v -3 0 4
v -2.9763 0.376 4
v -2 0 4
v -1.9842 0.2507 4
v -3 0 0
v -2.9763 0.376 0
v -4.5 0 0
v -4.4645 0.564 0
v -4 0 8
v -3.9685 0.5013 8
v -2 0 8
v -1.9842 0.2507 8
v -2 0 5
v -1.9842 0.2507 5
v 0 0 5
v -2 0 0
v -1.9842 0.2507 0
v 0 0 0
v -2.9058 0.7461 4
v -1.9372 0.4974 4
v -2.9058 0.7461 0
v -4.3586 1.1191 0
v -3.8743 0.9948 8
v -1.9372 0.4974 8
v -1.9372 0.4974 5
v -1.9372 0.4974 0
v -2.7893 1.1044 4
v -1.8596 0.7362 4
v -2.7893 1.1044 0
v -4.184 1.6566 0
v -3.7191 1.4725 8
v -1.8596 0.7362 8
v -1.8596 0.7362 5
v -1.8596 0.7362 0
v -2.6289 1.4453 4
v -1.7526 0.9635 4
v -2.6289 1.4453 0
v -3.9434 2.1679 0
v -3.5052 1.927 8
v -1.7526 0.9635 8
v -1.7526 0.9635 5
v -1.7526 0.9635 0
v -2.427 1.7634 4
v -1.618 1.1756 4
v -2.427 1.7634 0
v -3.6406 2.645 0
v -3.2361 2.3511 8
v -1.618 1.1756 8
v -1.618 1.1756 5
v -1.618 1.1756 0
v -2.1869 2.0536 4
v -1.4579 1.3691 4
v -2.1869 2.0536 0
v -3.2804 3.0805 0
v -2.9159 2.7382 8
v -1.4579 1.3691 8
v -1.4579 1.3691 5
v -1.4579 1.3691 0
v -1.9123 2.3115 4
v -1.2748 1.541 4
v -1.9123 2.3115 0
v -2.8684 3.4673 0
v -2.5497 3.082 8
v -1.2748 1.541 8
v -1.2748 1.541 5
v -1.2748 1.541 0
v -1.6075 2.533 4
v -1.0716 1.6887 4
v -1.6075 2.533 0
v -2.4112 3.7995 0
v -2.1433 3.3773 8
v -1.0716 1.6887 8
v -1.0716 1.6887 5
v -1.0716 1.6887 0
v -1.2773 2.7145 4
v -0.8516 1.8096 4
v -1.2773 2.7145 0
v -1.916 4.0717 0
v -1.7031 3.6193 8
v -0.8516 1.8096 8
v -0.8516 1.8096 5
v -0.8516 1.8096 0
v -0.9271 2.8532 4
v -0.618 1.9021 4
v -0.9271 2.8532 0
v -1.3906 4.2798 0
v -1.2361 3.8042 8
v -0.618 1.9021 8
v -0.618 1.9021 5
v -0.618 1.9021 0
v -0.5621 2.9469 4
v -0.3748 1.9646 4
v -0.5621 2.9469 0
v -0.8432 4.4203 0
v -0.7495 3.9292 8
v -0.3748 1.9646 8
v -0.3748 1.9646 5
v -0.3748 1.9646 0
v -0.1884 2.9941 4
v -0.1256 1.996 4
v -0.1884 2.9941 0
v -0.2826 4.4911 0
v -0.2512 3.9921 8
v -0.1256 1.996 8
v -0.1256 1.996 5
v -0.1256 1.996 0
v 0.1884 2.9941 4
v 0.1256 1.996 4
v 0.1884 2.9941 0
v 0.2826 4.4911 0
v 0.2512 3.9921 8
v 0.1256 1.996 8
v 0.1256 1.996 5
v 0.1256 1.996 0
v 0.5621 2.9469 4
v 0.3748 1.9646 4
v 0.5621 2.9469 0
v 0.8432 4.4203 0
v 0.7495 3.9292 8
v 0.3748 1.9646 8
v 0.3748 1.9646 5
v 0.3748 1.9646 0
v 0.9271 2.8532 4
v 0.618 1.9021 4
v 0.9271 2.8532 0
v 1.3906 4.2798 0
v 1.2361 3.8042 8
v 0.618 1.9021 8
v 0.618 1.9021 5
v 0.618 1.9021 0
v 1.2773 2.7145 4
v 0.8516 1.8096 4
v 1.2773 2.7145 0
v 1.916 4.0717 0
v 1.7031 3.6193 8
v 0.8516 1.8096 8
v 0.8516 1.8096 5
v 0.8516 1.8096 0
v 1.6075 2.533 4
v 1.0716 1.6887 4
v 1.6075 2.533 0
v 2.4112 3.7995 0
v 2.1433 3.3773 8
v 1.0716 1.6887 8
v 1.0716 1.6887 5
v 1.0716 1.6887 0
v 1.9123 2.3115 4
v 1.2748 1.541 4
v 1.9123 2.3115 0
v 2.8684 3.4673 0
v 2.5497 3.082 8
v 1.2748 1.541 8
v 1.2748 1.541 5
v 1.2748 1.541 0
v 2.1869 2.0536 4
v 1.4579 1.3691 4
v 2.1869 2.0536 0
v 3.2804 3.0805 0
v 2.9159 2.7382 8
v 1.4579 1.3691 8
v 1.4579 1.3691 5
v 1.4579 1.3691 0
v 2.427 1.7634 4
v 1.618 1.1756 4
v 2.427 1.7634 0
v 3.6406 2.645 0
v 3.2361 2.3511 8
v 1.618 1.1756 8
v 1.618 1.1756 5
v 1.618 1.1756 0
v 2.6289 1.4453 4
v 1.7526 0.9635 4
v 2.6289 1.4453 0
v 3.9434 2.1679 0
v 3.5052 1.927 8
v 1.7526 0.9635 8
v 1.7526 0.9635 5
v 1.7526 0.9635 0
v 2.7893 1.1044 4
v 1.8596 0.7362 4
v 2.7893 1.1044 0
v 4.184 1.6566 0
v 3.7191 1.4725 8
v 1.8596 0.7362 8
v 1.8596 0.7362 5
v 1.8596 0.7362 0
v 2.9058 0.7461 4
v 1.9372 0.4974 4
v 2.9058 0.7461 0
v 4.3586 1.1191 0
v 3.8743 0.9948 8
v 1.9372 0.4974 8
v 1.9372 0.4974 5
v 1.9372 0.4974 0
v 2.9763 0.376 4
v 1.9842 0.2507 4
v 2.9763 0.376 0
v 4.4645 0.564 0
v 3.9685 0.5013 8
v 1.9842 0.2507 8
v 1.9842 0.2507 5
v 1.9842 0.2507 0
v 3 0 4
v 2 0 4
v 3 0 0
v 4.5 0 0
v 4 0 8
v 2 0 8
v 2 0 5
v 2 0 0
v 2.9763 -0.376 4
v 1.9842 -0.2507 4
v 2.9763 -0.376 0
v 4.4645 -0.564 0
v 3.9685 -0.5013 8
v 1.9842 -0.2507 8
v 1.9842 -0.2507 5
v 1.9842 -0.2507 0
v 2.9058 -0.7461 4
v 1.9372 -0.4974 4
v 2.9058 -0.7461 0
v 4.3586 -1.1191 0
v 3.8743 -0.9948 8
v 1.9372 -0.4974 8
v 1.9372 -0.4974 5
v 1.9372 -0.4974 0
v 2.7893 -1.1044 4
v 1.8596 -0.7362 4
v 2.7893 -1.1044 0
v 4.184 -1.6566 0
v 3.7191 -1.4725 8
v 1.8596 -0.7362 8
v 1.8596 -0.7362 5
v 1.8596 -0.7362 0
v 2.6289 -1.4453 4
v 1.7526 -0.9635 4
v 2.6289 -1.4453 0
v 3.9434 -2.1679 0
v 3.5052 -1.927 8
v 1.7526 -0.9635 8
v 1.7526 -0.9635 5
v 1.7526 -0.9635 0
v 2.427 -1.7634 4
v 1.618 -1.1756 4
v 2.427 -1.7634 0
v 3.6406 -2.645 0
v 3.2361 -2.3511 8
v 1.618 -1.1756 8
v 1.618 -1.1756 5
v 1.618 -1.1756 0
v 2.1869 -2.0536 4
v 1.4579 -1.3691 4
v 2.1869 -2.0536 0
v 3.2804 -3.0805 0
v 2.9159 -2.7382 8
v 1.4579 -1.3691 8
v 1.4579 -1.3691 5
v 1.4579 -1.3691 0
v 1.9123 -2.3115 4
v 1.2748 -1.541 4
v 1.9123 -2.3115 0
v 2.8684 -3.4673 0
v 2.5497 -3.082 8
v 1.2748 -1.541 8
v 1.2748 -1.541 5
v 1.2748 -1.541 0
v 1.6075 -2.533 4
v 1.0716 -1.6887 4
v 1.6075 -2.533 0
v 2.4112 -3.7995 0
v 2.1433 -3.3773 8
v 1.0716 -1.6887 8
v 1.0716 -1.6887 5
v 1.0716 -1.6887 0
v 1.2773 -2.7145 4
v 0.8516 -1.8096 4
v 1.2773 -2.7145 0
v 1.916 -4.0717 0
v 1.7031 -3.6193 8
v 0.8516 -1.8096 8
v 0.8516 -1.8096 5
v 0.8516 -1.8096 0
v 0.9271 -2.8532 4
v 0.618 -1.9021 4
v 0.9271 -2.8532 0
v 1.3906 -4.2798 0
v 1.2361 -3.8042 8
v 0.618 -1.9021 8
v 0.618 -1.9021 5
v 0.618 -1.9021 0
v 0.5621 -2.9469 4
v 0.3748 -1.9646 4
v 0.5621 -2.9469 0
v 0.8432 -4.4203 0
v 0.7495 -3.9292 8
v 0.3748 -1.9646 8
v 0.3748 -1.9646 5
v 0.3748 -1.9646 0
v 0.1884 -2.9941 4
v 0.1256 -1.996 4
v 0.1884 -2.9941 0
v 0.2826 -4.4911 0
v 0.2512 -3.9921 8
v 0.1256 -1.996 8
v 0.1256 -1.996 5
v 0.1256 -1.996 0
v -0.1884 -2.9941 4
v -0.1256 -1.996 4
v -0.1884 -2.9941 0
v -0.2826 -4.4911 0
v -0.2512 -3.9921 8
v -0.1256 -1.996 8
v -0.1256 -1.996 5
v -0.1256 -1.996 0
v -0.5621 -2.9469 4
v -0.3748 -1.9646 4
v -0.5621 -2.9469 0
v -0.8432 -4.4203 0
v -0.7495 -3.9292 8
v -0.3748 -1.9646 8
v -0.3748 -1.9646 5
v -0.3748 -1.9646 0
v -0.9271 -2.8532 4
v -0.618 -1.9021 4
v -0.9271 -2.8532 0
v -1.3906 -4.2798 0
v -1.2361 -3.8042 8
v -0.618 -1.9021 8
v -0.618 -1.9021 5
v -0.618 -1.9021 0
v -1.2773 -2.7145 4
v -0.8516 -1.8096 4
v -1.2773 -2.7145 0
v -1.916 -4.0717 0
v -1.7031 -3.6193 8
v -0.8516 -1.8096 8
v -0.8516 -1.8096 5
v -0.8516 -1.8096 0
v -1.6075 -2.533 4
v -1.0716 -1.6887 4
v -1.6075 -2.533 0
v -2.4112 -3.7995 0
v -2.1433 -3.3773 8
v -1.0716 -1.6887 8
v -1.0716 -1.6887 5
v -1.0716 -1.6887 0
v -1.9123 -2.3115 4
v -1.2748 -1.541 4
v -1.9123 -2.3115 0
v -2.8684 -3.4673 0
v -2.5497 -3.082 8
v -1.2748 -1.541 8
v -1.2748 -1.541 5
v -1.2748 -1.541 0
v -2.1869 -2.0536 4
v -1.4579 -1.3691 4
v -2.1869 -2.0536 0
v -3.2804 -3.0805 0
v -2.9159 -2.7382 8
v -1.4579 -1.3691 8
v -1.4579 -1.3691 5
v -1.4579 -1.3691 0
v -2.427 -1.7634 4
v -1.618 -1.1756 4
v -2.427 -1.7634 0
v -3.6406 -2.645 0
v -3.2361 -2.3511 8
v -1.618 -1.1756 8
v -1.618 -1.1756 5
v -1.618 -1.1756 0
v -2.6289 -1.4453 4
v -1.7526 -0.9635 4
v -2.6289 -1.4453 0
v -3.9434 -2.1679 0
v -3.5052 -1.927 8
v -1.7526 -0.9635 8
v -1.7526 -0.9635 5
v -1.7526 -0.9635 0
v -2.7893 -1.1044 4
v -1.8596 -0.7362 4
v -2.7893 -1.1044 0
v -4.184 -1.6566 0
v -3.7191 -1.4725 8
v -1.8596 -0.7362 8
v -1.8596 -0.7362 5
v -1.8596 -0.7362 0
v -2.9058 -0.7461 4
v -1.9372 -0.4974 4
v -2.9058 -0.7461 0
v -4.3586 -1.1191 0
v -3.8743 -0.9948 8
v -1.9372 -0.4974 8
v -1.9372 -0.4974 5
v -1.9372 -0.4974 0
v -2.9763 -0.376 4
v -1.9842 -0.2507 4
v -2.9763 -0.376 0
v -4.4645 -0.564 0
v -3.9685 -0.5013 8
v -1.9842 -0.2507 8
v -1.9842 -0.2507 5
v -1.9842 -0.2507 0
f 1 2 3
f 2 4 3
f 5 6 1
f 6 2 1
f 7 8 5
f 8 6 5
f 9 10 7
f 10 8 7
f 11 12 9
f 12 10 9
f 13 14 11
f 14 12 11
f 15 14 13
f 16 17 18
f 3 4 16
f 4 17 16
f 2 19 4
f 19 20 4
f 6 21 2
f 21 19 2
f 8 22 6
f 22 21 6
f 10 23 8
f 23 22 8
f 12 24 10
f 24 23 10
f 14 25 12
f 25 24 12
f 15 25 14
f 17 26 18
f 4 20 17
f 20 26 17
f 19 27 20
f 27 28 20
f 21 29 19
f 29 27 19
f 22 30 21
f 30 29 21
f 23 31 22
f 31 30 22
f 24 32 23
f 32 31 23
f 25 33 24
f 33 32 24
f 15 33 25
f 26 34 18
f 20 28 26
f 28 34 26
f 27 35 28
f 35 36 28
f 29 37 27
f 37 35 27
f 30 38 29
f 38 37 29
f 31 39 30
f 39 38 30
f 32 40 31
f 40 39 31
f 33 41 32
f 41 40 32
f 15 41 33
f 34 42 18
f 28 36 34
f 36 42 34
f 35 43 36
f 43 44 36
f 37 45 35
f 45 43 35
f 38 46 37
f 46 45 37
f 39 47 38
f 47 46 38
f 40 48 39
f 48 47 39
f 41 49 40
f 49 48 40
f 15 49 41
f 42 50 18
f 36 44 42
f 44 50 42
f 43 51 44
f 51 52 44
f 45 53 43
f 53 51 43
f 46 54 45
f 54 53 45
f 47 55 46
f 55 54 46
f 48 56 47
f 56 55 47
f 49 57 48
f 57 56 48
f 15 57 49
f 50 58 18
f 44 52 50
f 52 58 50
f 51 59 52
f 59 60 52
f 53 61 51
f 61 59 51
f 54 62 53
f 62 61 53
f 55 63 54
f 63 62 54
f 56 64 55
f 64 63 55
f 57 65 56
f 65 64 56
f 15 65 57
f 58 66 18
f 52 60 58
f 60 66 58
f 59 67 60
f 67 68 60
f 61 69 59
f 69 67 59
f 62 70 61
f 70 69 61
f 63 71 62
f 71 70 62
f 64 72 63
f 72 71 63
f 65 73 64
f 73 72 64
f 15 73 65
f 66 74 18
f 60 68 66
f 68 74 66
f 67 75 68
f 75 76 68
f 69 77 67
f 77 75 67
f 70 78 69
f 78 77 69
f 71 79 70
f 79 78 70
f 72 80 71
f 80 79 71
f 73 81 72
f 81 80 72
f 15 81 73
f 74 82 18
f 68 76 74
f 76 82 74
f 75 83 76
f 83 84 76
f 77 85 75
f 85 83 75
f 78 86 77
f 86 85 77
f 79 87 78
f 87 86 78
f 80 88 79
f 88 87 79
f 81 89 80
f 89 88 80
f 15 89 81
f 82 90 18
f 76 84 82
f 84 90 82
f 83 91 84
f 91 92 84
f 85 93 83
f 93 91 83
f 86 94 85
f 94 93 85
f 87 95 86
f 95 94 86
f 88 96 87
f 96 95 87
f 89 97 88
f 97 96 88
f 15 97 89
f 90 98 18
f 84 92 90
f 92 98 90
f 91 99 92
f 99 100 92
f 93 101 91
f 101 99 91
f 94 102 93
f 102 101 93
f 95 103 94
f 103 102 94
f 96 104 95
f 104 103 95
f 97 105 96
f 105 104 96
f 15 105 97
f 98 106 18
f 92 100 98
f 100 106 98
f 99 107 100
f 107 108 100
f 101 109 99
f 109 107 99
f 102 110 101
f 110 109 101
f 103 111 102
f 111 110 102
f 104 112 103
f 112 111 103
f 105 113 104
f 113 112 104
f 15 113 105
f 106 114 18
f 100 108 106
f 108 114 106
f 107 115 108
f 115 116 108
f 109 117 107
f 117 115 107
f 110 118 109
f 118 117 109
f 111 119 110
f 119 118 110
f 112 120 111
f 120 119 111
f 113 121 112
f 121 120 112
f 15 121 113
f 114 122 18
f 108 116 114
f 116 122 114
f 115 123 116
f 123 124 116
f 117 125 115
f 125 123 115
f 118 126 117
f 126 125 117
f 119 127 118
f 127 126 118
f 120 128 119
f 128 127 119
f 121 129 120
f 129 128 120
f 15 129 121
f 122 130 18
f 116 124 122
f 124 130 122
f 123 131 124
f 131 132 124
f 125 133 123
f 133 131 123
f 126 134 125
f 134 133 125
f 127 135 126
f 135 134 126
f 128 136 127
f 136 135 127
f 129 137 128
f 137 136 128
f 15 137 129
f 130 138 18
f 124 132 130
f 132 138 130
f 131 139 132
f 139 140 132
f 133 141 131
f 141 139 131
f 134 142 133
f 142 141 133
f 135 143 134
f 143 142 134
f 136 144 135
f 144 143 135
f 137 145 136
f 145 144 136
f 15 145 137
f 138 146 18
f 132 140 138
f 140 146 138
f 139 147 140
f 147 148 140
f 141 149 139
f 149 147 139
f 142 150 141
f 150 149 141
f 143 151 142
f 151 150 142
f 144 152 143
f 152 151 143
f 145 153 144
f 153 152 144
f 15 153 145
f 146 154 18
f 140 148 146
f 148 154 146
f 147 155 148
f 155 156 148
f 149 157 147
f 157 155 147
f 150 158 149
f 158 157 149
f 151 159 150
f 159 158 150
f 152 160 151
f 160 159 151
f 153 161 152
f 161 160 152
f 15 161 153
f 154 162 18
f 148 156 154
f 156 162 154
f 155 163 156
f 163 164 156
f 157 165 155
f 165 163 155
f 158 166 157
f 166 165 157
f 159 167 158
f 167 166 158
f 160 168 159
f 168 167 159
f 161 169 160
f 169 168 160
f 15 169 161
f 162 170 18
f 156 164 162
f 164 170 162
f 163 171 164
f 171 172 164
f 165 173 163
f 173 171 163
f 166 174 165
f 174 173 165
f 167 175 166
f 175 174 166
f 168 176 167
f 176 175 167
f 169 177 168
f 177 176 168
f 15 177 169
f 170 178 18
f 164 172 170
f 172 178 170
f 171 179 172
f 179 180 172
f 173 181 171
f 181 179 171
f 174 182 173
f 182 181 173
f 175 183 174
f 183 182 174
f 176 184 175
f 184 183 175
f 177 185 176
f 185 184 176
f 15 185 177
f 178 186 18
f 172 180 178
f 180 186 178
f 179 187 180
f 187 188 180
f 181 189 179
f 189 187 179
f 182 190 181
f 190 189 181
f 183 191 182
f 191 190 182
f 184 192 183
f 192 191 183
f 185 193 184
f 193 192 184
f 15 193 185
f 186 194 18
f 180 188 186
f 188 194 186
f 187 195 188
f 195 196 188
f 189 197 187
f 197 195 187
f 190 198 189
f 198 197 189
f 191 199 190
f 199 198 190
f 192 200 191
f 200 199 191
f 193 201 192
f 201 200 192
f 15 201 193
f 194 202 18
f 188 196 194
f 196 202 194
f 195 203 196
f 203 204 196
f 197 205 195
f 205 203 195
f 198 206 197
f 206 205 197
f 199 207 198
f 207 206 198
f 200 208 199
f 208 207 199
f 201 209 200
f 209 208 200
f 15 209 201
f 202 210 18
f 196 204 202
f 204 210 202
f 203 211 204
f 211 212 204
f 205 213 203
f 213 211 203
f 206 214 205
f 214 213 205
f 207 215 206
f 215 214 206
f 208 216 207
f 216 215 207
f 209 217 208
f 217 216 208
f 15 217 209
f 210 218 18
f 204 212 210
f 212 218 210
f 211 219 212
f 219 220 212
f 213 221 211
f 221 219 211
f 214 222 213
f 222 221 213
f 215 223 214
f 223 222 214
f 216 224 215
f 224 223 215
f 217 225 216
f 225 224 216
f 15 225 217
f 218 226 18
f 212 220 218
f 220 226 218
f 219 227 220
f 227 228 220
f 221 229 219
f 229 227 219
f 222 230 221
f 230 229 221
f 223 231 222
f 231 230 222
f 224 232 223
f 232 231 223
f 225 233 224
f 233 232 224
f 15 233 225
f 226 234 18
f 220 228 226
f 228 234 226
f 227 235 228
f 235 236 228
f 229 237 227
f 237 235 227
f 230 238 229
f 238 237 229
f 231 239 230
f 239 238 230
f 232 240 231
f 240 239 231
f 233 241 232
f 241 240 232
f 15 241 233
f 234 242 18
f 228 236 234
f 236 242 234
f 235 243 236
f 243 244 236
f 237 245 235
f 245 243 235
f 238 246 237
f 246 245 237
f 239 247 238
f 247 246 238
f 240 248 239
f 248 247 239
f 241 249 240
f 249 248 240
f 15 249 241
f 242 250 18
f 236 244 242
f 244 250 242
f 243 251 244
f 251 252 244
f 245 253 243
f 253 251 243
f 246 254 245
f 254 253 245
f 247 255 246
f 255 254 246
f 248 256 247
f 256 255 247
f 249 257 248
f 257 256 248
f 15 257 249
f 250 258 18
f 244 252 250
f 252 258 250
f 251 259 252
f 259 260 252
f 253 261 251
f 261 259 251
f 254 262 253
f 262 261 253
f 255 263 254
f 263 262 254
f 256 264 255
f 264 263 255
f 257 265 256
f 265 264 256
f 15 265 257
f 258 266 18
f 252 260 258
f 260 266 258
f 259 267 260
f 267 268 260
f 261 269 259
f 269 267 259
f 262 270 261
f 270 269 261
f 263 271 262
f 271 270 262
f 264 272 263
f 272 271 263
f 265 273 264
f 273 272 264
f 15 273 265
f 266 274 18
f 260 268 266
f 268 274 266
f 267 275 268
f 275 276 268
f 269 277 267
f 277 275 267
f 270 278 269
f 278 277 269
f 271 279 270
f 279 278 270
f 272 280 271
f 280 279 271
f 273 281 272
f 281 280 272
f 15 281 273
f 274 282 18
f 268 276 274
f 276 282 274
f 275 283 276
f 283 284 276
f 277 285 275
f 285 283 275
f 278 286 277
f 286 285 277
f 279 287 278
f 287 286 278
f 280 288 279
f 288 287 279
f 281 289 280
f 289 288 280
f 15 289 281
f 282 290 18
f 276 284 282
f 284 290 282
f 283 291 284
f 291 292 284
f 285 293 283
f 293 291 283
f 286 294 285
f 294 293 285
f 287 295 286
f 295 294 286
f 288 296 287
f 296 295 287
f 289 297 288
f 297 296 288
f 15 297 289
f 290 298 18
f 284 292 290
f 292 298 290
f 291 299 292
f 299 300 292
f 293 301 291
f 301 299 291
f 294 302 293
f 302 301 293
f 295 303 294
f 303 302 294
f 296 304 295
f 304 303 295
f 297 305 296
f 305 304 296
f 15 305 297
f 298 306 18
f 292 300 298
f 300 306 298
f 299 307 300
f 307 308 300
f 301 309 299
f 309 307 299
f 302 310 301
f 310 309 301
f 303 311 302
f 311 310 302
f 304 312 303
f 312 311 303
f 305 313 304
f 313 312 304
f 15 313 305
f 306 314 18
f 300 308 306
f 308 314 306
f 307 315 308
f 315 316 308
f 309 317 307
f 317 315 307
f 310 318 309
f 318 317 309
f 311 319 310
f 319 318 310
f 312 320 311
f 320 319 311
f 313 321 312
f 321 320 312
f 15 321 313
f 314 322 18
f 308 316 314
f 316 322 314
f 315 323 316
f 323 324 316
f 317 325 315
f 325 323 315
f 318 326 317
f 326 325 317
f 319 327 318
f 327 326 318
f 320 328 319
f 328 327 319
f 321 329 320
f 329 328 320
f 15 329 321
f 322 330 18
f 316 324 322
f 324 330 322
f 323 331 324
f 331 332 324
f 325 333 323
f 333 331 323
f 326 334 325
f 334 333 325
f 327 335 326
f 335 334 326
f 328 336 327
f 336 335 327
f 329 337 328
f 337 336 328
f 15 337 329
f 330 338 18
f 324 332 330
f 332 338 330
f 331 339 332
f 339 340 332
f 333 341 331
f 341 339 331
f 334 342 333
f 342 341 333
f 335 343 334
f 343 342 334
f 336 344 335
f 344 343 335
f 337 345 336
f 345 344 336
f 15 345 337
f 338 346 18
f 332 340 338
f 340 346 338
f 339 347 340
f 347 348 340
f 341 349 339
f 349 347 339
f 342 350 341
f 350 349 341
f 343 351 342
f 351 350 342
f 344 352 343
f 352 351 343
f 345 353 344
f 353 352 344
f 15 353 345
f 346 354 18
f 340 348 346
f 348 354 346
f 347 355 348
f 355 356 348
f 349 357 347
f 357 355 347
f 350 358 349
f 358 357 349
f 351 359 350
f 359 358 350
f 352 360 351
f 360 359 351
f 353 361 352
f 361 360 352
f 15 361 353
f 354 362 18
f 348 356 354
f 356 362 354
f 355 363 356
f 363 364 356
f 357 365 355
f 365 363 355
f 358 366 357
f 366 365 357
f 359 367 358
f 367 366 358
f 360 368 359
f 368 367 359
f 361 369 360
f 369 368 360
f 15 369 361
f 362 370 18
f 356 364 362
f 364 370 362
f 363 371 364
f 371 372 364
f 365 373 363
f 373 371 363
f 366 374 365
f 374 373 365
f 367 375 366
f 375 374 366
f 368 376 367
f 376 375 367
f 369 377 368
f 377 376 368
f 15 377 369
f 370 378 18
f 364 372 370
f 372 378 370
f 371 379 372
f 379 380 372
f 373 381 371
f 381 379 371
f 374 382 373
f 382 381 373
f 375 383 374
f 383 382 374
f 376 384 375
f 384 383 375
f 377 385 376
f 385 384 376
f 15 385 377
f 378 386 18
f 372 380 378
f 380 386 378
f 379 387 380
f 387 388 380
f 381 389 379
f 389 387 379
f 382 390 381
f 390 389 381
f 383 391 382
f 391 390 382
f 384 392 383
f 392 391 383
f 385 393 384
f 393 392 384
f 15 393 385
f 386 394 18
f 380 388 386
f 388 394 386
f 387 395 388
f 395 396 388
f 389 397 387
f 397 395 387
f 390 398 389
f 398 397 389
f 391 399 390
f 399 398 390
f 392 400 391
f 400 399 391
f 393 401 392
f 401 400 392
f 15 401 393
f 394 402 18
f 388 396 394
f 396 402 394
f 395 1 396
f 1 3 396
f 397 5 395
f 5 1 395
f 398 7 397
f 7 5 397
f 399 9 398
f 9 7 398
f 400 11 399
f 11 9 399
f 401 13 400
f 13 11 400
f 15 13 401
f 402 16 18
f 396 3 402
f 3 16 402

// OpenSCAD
$fn=50;

pruhlednost=0.6;
//pruhlednost=1.0;

vyska = 8; // mm

hloubka_horni = 3;

prumer_horni_vnejsi = 8;
prumer_horni_vnitrni = 4;

polomer_horni_vnitrni = prumer_horni_vnitrni / 2;

wt_horni = (prumer_horni_vnejsi - prumer_horni_vnitrni) / 2;

prumer_spodni_vnejsi = 9; 
prumer_spodni_stred = 6; 
prumer_spodni_vnitrni = 4; 

polomer_spodni_stred = prumer_spodni_stred / 2;
polomer_spodni_vnitrni = prumer_spodni_vnitrni / 2;


hloubka_spodni = 4;

wt_spodni = (prumer_spodni_vnejsi - prumer_spodni_stred) / 2;

module zaslepka_obrys() 
    {
    p00 = [0, 0];
    p01 = [polomer_spodni_vnitrni, 0];
    p02 = [polomer_spodni_vnitrni, hloubka_spodni];
    p03 = [polomer_spodni_stred, hloubka_spodni];
    p04 = [polomer_spodni_stred, 0];
    p05 = [prumer_spodni_vnejsi / 2, 0];
    p06 = [prumer_horni_vnejsi / 2, vyska];
    p07 = [polomer_horni_vnitrni, vyska];
    p08 = [polomer_horni_vnitrni, vyska - hloubka_horni];
    p09 = [0, vyska - hloubka_horni];
        
    points=[
        p00, 
        p01, 
        p02,
        p03, 
        p04, 
        p05,
        p06, 
        p07, 
        p08,
        p09,
        ];
        
    polygon(points);
    }
    
module zaslepka_3d()
    color("crimson", pruhlednost)
    translate([0, 0, 0])
    rotate([0, 0, 0])
    rotate_extrude(angle=360)
    zaslepka_obrys();    
    
//zaslepka_obrys();
    
zaslepka_3d(); 
   
